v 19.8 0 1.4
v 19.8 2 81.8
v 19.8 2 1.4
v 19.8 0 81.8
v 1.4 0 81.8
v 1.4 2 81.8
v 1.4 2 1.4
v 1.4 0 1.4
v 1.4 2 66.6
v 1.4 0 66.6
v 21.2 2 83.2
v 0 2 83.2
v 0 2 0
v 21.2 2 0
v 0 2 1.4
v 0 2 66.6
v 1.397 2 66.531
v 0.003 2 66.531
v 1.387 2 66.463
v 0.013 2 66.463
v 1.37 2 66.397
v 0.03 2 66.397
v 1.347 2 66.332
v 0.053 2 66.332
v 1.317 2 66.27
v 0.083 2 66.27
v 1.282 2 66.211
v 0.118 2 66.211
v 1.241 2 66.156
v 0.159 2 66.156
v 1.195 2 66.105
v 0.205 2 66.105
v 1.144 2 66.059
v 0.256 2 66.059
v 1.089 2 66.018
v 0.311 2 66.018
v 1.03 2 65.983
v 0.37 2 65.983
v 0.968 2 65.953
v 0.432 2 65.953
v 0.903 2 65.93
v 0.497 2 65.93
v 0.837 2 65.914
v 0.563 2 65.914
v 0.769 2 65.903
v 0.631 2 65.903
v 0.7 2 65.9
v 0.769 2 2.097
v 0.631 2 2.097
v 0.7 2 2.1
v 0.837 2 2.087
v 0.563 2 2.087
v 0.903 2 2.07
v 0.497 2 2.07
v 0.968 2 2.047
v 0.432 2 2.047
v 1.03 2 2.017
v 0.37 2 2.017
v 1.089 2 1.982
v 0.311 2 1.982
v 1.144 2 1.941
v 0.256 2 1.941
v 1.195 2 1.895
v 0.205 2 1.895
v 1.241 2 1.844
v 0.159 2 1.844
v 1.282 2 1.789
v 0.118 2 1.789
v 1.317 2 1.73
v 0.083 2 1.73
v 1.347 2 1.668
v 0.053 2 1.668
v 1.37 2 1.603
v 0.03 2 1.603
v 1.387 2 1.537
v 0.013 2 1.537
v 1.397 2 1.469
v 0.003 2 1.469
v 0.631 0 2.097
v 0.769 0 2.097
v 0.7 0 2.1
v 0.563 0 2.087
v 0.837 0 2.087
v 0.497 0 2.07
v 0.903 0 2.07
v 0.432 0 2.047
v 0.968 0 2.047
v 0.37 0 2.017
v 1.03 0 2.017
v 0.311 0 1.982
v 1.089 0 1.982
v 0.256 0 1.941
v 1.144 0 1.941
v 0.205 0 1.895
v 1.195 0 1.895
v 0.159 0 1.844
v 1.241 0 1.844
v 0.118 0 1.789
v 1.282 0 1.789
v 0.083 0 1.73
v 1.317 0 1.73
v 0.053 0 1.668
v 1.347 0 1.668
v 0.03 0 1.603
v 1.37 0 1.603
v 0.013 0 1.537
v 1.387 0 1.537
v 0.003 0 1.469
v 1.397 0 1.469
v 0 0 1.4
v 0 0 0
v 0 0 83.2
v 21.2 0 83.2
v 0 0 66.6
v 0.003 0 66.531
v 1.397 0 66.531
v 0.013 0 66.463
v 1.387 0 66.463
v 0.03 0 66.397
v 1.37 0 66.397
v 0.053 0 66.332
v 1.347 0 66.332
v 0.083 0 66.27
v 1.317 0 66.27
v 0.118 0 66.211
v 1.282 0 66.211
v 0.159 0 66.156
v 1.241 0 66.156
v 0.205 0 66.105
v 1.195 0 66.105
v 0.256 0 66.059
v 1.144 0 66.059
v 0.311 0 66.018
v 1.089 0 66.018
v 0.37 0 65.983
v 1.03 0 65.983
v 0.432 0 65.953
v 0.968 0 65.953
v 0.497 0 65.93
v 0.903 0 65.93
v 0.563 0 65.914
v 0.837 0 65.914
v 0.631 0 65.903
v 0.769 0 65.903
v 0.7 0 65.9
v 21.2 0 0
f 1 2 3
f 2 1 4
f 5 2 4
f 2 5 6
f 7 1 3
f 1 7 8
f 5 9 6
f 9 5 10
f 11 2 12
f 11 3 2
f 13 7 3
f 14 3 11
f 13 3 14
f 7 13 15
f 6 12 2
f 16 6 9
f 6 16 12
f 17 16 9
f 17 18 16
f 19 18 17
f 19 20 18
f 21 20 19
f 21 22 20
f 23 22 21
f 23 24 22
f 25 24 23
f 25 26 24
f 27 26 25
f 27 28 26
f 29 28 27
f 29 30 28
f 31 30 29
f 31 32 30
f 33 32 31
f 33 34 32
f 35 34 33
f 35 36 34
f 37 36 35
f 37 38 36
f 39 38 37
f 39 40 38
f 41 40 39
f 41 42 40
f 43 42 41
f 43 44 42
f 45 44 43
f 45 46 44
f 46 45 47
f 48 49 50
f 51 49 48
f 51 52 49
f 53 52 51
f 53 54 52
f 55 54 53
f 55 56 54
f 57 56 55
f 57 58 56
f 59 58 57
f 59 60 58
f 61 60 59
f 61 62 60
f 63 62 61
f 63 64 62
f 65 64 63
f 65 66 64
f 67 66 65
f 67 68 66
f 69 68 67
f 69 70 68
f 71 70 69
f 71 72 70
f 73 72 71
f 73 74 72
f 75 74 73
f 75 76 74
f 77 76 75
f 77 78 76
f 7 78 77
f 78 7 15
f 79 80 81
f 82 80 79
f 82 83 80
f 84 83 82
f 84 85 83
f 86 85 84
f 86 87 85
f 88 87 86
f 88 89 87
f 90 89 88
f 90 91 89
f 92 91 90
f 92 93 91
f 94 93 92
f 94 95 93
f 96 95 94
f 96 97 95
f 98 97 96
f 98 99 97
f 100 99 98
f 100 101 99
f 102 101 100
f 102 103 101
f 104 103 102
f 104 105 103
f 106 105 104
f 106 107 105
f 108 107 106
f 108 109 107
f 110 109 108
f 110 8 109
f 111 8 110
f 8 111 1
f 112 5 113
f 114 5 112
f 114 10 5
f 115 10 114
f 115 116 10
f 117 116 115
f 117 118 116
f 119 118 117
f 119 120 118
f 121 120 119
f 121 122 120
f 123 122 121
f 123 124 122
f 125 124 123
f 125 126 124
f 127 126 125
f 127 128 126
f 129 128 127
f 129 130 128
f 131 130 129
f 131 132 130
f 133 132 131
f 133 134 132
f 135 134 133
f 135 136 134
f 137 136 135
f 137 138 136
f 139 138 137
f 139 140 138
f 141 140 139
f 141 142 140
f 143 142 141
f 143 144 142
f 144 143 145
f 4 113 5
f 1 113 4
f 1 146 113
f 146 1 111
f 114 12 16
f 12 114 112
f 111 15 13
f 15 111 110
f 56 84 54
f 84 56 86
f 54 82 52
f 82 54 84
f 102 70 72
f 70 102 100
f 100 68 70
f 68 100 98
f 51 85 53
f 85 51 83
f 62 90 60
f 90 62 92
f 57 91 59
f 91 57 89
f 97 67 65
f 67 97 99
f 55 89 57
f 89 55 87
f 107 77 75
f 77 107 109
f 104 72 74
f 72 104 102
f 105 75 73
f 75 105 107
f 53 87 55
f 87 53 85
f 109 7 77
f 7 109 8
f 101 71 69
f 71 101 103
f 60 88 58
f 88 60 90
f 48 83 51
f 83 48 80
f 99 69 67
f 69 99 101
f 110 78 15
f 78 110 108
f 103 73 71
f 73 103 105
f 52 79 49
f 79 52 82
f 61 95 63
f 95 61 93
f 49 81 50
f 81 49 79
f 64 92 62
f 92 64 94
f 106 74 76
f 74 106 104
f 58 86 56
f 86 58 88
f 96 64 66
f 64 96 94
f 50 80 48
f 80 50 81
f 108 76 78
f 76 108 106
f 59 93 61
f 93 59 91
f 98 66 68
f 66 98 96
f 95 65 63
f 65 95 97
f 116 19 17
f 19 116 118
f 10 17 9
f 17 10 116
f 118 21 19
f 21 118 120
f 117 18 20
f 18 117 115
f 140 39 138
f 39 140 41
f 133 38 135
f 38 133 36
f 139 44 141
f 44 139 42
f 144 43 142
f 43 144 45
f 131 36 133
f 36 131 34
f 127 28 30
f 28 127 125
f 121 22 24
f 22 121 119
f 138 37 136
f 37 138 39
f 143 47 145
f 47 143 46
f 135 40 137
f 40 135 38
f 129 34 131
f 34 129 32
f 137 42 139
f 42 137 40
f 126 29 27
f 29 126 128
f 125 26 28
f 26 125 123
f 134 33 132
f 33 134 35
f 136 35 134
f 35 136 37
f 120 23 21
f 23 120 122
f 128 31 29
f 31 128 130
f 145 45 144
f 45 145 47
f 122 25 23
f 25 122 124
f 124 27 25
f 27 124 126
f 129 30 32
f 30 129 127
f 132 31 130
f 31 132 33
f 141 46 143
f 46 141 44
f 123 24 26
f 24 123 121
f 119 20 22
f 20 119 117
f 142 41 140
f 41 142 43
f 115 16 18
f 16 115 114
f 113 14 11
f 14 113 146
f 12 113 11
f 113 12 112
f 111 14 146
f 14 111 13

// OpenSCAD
height = 80;
width = 18;
depth = 2;

hook_height_top = 18;
hook_height_bot = 0;

stiffness = 1.4;
buffer = 0.4;

clip_height = (height + buffer) + (stiffness * 2);
clip_width = (width + buffer) + (stiffness * 2);
clip_depth = depth;

cutout_height = (clip_height - hook_height_top - hook_height_bot);

difference() {
    cube([clip_width, clip_depth, clip_height]);
    difference() {
        union() {
            translate([stiffness, 0, stiffness]) cube([width + buffer, depth, height + buffer]);
            translate([0, 0, hook_height_bot + stiffness]) cube([stiffness, depth, cutout_height]);
        }
        union() {
            fillet_height_bot = hook_height_bot + stiffness;
            translate([stiffness/2, 0, fillet_height_bot]) rotate([-90, 0, 0]) cylinder(h=depth, r=stiffness / 2, center=false, $fn = 64);
            #translate([stiffness/2, 0, fillet_height_bot + cutout_height]) rotate([-90, 0, 0]) cylinder(h=depth, r=stiffness / 2, center=false, $fn = 64);
        }
    }
}
